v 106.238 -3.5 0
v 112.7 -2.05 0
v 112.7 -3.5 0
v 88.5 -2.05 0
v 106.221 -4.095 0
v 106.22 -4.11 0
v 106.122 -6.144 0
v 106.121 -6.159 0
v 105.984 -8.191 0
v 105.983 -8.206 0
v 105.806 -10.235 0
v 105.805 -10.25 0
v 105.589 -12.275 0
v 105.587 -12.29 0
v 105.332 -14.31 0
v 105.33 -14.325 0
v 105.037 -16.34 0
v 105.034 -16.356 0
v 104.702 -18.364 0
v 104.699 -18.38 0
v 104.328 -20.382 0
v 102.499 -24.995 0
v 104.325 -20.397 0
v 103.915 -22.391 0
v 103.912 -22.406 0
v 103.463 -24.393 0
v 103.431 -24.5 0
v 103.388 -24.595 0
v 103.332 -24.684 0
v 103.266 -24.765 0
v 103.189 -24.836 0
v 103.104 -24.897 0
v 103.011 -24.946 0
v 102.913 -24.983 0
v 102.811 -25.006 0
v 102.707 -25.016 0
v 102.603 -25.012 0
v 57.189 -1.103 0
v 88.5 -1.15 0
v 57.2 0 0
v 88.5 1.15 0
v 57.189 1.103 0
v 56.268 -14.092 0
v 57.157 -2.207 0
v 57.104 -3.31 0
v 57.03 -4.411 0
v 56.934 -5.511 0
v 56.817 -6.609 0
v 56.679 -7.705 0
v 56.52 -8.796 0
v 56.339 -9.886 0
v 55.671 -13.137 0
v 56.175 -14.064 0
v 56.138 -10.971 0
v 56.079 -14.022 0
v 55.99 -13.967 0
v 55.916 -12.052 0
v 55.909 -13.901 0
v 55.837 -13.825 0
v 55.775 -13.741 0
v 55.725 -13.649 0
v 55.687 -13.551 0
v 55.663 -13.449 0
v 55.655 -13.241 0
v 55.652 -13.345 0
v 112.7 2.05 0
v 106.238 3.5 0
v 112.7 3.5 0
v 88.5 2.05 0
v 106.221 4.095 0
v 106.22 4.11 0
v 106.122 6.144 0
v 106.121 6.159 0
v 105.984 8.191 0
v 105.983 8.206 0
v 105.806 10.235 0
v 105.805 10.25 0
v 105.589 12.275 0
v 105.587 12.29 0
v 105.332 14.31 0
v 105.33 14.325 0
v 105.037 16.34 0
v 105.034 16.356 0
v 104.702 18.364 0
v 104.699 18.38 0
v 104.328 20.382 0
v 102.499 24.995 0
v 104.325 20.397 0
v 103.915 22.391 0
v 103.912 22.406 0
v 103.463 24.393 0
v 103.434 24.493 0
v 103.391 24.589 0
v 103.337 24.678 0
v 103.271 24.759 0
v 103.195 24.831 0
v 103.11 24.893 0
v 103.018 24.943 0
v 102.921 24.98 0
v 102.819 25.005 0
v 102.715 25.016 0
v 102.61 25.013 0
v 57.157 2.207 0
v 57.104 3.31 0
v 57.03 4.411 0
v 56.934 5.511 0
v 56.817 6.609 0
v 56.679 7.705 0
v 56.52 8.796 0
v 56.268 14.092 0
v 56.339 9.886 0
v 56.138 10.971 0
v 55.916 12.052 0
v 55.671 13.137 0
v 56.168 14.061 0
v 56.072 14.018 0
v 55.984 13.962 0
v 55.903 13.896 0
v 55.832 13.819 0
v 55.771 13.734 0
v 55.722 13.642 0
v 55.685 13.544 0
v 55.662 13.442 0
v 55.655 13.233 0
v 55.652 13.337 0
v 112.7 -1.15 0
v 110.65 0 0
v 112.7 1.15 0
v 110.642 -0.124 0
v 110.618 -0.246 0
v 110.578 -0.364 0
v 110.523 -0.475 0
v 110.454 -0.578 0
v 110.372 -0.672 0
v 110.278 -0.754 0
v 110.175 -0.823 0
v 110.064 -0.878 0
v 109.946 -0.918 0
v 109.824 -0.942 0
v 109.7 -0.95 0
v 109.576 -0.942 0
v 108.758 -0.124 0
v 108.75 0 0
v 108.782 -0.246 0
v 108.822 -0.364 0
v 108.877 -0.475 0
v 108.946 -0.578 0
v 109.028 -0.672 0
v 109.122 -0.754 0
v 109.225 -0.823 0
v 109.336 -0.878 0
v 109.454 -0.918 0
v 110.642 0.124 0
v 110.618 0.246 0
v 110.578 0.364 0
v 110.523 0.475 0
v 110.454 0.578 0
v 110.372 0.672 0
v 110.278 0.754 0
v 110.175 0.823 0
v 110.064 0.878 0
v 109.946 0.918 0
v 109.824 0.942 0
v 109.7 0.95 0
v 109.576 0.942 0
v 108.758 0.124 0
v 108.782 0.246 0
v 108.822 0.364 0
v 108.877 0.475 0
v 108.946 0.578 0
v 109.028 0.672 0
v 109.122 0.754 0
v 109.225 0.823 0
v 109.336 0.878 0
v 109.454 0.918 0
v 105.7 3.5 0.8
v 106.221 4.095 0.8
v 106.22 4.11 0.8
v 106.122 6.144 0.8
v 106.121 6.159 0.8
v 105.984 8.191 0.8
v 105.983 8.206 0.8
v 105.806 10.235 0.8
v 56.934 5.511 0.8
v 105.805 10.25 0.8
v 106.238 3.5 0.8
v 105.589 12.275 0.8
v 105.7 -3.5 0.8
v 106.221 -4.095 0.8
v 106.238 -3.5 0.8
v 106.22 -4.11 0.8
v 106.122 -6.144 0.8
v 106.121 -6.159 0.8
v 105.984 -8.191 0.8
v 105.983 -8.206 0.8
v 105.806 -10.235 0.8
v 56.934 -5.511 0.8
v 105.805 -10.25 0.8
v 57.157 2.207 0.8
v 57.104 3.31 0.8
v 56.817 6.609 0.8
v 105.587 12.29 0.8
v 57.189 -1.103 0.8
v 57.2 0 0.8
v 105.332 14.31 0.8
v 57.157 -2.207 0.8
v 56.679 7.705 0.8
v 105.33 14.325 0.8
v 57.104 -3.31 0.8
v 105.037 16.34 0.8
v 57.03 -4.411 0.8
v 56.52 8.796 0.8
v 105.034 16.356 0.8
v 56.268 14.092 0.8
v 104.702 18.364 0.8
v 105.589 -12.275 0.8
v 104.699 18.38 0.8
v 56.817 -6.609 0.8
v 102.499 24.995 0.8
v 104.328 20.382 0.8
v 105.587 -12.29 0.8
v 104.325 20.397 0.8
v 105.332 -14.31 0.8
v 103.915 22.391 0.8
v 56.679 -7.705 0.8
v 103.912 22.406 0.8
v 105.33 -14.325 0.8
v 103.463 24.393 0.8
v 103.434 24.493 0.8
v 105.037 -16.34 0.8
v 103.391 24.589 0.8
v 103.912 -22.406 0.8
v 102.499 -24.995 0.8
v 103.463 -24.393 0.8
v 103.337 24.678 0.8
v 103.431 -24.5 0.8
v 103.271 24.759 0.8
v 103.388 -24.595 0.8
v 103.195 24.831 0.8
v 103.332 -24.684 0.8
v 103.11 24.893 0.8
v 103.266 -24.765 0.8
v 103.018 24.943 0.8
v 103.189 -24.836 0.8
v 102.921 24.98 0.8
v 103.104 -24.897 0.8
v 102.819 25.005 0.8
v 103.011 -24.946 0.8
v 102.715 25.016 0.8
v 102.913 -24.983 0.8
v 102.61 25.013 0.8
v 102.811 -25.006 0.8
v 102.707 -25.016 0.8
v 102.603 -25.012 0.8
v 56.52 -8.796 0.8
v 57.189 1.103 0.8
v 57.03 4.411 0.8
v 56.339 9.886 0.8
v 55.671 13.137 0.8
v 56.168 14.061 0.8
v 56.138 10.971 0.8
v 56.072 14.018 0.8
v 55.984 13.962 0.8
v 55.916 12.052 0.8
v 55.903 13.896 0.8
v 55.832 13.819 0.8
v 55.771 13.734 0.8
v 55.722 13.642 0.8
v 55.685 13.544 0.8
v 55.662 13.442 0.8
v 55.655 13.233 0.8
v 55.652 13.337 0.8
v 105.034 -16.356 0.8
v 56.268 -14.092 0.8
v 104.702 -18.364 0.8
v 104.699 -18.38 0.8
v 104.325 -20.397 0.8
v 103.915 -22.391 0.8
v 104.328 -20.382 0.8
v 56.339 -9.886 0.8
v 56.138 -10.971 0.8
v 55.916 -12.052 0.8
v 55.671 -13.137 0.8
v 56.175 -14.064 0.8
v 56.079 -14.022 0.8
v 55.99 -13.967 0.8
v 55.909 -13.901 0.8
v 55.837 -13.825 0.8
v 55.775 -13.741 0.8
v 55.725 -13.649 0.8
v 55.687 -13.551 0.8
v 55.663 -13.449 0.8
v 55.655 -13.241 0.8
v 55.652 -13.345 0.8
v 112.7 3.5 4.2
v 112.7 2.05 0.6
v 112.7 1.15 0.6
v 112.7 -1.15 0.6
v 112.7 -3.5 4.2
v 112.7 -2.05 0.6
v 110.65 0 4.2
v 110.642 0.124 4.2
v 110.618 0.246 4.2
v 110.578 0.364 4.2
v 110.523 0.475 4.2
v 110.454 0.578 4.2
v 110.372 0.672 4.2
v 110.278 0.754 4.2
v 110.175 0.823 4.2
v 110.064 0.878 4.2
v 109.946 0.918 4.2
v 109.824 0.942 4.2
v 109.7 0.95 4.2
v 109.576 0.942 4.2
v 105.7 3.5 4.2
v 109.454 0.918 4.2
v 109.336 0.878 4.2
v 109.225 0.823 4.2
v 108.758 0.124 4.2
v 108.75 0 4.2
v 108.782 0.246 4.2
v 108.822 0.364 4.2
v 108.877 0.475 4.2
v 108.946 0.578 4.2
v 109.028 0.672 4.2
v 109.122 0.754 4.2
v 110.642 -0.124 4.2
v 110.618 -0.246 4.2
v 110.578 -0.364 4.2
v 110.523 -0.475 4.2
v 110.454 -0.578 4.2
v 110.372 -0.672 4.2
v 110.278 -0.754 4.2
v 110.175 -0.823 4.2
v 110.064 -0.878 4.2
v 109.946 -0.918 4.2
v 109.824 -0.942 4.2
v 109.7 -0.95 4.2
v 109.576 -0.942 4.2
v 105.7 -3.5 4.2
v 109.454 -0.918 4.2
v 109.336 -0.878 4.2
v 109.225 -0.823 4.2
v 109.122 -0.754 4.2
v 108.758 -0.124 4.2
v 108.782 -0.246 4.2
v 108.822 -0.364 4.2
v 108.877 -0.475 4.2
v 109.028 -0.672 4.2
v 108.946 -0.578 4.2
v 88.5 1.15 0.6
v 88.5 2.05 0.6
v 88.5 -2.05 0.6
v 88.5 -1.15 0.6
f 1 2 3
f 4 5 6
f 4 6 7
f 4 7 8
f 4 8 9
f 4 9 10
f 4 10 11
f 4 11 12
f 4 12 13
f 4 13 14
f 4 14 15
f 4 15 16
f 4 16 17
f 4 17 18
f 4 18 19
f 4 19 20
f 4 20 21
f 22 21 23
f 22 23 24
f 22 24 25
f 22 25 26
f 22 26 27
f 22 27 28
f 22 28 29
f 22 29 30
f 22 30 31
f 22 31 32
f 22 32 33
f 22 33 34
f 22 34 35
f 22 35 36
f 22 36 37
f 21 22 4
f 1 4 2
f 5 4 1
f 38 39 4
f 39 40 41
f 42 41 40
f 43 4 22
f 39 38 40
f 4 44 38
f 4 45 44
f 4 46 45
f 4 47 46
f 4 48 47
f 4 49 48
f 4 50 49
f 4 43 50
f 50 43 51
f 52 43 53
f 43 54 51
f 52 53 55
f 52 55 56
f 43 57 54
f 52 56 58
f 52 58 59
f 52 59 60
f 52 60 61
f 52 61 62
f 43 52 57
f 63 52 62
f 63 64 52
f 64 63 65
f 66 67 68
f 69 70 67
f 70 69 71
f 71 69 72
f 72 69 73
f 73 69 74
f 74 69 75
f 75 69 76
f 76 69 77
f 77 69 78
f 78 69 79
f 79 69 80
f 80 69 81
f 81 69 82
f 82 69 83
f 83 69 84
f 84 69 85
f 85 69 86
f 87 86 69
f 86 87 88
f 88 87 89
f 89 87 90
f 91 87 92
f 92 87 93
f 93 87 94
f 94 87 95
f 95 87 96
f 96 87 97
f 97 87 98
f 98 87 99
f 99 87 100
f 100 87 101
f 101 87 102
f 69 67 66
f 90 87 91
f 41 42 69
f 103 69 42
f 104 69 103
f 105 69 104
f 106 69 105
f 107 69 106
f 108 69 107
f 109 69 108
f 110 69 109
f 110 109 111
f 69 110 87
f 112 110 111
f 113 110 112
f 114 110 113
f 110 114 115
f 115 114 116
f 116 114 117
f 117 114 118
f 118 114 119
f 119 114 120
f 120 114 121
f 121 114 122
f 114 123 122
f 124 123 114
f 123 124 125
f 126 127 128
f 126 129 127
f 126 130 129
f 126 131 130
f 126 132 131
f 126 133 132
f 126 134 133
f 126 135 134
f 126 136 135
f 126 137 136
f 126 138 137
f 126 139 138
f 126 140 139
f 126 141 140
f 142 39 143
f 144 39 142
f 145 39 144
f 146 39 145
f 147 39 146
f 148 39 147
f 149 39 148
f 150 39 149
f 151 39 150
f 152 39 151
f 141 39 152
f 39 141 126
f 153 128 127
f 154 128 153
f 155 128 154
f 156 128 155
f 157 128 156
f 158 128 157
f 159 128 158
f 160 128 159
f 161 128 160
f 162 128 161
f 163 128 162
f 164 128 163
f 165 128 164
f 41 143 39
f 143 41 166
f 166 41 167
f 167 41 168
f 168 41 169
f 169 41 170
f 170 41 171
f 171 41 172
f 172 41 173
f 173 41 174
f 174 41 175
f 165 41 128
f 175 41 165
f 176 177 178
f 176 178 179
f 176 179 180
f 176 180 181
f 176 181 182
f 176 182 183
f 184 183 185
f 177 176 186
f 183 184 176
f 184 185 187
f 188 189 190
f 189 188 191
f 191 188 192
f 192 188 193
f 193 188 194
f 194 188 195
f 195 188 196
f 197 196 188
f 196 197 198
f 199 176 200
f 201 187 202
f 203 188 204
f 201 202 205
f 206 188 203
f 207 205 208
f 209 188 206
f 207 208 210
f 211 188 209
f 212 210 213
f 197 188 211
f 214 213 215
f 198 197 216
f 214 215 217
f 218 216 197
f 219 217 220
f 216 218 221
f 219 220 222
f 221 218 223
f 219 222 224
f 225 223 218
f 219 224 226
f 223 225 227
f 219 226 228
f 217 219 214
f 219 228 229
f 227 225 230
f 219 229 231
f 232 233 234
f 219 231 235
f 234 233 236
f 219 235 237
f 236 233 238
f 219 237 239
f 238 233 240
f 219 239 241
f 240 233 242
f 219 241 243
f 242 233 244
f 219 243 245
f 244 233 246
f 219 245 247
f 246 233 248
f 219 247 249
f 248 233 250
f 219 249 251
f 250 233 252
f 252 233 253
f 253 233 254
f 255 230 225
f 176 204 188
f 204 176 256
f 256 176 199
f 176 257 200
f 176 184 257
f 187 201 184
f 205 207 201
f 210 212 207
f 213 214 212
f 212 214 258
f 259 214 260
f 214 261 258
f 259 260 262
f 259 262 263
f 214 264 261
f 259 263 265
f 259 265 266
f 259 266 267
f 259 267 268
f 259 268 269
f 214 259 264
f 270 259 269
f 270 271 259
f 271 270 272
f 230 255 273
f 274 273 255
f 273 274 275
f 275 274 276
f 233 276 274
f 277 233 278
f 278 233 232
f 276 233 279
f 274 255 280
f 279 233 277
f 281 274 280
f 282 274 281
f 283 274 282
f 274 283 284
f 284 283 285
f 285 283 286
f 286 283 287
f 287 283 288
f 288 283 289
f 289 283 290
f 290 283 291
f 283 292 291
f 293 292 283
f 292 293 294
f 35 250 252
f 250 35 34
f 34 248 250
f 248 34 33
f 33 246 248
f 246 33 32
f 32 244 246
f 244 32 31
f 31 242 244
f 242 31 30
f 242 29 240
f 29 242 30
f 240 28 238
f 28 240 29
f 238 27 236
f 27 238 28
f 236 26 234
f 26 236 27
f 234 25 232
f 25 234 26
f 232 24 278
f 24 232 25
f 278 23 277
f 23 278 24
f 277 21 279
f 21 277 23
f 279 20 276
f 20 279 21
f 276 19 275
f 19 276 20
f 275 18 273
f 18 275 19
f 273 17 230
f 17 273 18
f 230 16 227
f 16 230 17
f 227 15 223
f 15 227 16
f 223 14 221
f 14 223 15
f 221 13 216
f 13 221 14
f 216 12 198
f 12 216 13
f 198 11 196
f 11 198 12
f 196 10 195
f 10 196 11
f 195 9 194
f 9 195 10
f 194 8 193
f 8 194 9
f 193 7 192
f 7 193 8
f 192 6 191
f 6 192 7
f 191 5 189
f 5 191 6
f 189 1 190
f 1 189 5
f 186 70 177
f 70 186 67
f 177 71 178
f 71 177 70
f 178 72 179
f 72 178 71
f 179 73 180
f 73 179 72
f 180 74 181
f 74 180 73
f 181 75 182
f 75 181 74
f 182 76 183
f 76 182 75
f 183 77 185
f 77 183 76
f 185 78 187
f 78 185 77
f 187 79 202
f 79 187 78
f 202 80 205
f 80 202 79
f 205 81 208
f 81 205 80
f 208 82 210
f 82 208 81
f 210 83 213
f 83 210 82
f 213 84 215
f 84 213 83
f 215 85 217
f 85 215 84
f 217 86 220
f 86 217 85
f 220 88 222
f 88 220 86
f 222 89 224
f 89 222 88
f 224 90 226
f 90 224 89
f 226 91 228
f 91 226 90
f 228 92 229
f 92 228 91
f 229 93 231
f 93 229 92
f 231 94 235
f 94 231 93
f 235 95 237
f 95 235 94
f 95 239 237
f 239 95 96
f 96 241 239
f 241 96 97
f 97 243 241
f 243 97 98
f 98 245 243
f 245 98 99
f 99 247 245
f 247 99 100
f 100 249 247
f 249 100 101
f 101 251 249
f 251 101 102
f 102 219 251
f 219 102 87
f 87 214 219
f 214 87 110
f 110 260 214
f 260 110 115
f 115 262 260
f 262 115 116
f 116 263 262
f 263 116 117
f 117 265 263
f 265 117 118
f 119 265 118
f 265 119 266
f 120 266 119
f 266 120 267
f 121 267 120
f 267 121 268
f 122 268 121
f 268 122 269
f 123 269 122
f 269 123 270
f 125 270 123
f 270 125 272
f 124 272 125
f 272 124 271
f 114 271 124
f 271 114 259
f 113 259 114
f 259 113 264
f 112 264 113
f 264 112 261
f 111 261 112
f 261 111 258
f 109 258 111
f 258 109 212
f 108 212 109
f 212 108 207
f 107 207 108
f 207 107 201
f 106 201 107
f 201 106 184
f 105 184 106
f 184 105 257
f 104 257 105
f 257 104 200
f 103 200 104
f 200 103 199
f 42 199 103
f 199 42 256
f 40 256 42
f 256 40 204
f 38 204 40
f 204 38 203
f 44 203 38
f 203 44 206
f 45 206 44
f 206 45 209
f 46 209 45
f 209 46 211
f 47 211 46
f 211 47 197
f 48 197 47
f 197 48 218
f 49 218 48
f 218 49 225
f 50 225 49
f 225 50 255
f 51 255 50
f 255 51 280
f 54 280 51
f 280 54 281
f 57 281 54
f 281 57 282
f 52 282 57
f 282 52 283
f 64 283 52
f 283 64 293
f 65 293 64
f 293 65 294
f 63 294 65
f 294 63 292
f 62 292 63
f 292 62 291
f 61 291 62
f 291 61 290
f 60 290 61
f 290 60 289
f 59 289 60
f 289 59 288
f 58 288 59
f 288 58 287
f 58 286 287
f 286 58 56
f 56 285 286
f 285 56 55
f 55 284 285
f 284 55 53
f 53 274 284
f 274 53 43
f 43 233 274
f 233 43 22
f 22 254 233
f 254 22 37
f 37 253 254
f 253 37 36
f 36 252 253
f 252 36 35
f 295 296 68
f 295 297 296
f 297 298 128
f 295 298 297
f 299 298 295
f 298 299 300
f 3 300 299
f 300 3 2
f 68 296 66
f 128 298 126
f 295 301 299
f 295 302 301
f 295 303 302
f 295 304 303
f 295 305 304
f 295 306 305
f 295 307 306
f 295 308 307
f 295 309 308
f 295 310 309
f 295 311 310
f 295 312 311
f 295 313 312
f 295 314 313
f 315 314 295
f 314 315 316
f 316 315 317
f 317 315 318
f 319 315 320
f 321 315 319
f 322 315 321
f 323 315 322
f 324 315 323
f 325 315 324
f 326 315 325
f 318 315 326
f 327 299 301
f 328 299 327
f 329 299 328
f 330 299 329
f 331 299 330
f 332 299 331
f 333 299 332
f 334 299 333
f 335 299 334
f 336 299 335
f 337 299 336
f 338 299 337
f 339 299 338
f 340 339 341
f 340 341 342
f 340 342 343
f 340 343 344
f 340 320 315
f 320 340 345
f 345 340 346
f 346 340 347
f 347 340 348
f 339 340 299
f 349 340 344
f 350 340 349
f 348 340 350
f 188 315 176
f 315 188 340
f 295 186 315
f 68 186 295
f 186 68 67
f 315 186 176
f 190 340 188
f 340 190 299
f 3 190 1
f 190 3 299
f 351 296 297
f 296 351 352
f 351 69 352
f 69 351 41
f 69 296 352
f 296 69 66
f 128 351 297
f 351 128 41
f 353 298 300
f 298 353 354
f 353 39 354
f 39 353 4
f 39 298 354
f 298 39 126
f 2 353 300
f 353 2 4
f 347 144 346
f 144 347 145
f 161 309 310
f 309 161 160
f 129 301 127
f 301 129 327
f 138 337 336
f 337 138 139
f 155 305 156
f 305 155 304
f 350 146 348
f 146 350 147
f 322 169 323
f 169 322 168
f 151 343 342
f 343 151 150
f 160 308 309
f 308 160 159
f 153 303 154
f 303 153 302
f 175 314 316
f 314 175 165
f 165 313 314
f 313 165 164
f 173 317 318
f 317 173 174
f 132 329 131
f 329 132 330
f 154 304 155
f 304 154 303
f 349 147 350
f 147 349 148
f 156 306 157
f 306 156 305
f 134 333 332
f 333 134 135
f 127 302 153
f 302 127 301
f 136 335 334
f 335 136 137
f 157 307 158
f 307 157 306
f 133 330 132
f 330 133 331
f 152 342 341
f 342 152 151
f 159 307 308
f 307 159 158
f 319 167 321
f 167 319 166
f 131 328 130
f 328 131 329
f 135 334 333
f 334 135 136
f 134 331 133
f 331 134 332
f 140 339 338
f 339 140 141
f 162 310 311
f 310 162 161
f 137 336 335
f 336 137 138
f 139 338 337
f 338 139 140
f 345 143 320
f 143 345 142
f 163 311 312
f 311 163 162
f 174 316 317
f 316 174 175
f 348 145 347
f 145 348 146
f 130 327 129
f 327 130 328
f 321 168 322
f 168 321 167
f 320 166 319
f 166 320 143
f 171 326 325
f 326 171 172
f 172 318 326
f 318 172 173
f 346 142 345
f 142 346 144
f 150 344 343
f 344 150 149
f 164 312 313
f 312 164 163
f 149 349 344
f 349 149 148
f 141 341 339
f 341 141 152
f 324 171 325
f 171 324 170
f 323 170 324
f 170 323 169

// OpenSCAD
// Gen-CT — bobbin LID (top flange + locating tab). Print x12, flange face DOWN on the bed.
// CA-glue onto the hub top BEFORE winding. Tab = lap joint into the stator tab pocket; 1.75 mm filament
// pin through pin hole + stator ledge, trim flush. Lead slots carry both leads flush.
include <parameters.scad>;
$fn = 48;
module sector_2d(r_in, r_out, ang) {
    polygon([
        for (a = [-ang/2 : ang/24 : ang/2]) [r_in*cos(a), r_in*sin(a)],
        for (a = [ang/2 : -ang/24 : -ang/2]) [r_out*cos(a), r_out*sin(a)]
    ]);
}
module footprint_2d() { offset(r=wall) sector_2d(coil_id_r, coil_od_r, span_deg); }
module hub_2d()       { offset(delta=-coil_core_inset) sector_2d(coil_id_r, coil_od_r, span_deg); }

difference() {
    union() {
        linear_extrude(flange_t) footprint_2d();
        translate([coil_od_r + 0.2, -tab_w/2, 0]) cube([tab_len, tab_w, tab_h]);
    }
    translate([coil_mount_r, 0, -0.1]) cylinder(d=pin_d, h=tab_h + 1);
    for (y = [lead_y, -lead_y])
        translate([coil_od_r - coil_core_inset - 0.5, y - lead_slot_w/2, -0.1])
            cube([coil_core_inset + tab_len + 2, lead_slot_w, lead_groove_d + 0.1]);
}
